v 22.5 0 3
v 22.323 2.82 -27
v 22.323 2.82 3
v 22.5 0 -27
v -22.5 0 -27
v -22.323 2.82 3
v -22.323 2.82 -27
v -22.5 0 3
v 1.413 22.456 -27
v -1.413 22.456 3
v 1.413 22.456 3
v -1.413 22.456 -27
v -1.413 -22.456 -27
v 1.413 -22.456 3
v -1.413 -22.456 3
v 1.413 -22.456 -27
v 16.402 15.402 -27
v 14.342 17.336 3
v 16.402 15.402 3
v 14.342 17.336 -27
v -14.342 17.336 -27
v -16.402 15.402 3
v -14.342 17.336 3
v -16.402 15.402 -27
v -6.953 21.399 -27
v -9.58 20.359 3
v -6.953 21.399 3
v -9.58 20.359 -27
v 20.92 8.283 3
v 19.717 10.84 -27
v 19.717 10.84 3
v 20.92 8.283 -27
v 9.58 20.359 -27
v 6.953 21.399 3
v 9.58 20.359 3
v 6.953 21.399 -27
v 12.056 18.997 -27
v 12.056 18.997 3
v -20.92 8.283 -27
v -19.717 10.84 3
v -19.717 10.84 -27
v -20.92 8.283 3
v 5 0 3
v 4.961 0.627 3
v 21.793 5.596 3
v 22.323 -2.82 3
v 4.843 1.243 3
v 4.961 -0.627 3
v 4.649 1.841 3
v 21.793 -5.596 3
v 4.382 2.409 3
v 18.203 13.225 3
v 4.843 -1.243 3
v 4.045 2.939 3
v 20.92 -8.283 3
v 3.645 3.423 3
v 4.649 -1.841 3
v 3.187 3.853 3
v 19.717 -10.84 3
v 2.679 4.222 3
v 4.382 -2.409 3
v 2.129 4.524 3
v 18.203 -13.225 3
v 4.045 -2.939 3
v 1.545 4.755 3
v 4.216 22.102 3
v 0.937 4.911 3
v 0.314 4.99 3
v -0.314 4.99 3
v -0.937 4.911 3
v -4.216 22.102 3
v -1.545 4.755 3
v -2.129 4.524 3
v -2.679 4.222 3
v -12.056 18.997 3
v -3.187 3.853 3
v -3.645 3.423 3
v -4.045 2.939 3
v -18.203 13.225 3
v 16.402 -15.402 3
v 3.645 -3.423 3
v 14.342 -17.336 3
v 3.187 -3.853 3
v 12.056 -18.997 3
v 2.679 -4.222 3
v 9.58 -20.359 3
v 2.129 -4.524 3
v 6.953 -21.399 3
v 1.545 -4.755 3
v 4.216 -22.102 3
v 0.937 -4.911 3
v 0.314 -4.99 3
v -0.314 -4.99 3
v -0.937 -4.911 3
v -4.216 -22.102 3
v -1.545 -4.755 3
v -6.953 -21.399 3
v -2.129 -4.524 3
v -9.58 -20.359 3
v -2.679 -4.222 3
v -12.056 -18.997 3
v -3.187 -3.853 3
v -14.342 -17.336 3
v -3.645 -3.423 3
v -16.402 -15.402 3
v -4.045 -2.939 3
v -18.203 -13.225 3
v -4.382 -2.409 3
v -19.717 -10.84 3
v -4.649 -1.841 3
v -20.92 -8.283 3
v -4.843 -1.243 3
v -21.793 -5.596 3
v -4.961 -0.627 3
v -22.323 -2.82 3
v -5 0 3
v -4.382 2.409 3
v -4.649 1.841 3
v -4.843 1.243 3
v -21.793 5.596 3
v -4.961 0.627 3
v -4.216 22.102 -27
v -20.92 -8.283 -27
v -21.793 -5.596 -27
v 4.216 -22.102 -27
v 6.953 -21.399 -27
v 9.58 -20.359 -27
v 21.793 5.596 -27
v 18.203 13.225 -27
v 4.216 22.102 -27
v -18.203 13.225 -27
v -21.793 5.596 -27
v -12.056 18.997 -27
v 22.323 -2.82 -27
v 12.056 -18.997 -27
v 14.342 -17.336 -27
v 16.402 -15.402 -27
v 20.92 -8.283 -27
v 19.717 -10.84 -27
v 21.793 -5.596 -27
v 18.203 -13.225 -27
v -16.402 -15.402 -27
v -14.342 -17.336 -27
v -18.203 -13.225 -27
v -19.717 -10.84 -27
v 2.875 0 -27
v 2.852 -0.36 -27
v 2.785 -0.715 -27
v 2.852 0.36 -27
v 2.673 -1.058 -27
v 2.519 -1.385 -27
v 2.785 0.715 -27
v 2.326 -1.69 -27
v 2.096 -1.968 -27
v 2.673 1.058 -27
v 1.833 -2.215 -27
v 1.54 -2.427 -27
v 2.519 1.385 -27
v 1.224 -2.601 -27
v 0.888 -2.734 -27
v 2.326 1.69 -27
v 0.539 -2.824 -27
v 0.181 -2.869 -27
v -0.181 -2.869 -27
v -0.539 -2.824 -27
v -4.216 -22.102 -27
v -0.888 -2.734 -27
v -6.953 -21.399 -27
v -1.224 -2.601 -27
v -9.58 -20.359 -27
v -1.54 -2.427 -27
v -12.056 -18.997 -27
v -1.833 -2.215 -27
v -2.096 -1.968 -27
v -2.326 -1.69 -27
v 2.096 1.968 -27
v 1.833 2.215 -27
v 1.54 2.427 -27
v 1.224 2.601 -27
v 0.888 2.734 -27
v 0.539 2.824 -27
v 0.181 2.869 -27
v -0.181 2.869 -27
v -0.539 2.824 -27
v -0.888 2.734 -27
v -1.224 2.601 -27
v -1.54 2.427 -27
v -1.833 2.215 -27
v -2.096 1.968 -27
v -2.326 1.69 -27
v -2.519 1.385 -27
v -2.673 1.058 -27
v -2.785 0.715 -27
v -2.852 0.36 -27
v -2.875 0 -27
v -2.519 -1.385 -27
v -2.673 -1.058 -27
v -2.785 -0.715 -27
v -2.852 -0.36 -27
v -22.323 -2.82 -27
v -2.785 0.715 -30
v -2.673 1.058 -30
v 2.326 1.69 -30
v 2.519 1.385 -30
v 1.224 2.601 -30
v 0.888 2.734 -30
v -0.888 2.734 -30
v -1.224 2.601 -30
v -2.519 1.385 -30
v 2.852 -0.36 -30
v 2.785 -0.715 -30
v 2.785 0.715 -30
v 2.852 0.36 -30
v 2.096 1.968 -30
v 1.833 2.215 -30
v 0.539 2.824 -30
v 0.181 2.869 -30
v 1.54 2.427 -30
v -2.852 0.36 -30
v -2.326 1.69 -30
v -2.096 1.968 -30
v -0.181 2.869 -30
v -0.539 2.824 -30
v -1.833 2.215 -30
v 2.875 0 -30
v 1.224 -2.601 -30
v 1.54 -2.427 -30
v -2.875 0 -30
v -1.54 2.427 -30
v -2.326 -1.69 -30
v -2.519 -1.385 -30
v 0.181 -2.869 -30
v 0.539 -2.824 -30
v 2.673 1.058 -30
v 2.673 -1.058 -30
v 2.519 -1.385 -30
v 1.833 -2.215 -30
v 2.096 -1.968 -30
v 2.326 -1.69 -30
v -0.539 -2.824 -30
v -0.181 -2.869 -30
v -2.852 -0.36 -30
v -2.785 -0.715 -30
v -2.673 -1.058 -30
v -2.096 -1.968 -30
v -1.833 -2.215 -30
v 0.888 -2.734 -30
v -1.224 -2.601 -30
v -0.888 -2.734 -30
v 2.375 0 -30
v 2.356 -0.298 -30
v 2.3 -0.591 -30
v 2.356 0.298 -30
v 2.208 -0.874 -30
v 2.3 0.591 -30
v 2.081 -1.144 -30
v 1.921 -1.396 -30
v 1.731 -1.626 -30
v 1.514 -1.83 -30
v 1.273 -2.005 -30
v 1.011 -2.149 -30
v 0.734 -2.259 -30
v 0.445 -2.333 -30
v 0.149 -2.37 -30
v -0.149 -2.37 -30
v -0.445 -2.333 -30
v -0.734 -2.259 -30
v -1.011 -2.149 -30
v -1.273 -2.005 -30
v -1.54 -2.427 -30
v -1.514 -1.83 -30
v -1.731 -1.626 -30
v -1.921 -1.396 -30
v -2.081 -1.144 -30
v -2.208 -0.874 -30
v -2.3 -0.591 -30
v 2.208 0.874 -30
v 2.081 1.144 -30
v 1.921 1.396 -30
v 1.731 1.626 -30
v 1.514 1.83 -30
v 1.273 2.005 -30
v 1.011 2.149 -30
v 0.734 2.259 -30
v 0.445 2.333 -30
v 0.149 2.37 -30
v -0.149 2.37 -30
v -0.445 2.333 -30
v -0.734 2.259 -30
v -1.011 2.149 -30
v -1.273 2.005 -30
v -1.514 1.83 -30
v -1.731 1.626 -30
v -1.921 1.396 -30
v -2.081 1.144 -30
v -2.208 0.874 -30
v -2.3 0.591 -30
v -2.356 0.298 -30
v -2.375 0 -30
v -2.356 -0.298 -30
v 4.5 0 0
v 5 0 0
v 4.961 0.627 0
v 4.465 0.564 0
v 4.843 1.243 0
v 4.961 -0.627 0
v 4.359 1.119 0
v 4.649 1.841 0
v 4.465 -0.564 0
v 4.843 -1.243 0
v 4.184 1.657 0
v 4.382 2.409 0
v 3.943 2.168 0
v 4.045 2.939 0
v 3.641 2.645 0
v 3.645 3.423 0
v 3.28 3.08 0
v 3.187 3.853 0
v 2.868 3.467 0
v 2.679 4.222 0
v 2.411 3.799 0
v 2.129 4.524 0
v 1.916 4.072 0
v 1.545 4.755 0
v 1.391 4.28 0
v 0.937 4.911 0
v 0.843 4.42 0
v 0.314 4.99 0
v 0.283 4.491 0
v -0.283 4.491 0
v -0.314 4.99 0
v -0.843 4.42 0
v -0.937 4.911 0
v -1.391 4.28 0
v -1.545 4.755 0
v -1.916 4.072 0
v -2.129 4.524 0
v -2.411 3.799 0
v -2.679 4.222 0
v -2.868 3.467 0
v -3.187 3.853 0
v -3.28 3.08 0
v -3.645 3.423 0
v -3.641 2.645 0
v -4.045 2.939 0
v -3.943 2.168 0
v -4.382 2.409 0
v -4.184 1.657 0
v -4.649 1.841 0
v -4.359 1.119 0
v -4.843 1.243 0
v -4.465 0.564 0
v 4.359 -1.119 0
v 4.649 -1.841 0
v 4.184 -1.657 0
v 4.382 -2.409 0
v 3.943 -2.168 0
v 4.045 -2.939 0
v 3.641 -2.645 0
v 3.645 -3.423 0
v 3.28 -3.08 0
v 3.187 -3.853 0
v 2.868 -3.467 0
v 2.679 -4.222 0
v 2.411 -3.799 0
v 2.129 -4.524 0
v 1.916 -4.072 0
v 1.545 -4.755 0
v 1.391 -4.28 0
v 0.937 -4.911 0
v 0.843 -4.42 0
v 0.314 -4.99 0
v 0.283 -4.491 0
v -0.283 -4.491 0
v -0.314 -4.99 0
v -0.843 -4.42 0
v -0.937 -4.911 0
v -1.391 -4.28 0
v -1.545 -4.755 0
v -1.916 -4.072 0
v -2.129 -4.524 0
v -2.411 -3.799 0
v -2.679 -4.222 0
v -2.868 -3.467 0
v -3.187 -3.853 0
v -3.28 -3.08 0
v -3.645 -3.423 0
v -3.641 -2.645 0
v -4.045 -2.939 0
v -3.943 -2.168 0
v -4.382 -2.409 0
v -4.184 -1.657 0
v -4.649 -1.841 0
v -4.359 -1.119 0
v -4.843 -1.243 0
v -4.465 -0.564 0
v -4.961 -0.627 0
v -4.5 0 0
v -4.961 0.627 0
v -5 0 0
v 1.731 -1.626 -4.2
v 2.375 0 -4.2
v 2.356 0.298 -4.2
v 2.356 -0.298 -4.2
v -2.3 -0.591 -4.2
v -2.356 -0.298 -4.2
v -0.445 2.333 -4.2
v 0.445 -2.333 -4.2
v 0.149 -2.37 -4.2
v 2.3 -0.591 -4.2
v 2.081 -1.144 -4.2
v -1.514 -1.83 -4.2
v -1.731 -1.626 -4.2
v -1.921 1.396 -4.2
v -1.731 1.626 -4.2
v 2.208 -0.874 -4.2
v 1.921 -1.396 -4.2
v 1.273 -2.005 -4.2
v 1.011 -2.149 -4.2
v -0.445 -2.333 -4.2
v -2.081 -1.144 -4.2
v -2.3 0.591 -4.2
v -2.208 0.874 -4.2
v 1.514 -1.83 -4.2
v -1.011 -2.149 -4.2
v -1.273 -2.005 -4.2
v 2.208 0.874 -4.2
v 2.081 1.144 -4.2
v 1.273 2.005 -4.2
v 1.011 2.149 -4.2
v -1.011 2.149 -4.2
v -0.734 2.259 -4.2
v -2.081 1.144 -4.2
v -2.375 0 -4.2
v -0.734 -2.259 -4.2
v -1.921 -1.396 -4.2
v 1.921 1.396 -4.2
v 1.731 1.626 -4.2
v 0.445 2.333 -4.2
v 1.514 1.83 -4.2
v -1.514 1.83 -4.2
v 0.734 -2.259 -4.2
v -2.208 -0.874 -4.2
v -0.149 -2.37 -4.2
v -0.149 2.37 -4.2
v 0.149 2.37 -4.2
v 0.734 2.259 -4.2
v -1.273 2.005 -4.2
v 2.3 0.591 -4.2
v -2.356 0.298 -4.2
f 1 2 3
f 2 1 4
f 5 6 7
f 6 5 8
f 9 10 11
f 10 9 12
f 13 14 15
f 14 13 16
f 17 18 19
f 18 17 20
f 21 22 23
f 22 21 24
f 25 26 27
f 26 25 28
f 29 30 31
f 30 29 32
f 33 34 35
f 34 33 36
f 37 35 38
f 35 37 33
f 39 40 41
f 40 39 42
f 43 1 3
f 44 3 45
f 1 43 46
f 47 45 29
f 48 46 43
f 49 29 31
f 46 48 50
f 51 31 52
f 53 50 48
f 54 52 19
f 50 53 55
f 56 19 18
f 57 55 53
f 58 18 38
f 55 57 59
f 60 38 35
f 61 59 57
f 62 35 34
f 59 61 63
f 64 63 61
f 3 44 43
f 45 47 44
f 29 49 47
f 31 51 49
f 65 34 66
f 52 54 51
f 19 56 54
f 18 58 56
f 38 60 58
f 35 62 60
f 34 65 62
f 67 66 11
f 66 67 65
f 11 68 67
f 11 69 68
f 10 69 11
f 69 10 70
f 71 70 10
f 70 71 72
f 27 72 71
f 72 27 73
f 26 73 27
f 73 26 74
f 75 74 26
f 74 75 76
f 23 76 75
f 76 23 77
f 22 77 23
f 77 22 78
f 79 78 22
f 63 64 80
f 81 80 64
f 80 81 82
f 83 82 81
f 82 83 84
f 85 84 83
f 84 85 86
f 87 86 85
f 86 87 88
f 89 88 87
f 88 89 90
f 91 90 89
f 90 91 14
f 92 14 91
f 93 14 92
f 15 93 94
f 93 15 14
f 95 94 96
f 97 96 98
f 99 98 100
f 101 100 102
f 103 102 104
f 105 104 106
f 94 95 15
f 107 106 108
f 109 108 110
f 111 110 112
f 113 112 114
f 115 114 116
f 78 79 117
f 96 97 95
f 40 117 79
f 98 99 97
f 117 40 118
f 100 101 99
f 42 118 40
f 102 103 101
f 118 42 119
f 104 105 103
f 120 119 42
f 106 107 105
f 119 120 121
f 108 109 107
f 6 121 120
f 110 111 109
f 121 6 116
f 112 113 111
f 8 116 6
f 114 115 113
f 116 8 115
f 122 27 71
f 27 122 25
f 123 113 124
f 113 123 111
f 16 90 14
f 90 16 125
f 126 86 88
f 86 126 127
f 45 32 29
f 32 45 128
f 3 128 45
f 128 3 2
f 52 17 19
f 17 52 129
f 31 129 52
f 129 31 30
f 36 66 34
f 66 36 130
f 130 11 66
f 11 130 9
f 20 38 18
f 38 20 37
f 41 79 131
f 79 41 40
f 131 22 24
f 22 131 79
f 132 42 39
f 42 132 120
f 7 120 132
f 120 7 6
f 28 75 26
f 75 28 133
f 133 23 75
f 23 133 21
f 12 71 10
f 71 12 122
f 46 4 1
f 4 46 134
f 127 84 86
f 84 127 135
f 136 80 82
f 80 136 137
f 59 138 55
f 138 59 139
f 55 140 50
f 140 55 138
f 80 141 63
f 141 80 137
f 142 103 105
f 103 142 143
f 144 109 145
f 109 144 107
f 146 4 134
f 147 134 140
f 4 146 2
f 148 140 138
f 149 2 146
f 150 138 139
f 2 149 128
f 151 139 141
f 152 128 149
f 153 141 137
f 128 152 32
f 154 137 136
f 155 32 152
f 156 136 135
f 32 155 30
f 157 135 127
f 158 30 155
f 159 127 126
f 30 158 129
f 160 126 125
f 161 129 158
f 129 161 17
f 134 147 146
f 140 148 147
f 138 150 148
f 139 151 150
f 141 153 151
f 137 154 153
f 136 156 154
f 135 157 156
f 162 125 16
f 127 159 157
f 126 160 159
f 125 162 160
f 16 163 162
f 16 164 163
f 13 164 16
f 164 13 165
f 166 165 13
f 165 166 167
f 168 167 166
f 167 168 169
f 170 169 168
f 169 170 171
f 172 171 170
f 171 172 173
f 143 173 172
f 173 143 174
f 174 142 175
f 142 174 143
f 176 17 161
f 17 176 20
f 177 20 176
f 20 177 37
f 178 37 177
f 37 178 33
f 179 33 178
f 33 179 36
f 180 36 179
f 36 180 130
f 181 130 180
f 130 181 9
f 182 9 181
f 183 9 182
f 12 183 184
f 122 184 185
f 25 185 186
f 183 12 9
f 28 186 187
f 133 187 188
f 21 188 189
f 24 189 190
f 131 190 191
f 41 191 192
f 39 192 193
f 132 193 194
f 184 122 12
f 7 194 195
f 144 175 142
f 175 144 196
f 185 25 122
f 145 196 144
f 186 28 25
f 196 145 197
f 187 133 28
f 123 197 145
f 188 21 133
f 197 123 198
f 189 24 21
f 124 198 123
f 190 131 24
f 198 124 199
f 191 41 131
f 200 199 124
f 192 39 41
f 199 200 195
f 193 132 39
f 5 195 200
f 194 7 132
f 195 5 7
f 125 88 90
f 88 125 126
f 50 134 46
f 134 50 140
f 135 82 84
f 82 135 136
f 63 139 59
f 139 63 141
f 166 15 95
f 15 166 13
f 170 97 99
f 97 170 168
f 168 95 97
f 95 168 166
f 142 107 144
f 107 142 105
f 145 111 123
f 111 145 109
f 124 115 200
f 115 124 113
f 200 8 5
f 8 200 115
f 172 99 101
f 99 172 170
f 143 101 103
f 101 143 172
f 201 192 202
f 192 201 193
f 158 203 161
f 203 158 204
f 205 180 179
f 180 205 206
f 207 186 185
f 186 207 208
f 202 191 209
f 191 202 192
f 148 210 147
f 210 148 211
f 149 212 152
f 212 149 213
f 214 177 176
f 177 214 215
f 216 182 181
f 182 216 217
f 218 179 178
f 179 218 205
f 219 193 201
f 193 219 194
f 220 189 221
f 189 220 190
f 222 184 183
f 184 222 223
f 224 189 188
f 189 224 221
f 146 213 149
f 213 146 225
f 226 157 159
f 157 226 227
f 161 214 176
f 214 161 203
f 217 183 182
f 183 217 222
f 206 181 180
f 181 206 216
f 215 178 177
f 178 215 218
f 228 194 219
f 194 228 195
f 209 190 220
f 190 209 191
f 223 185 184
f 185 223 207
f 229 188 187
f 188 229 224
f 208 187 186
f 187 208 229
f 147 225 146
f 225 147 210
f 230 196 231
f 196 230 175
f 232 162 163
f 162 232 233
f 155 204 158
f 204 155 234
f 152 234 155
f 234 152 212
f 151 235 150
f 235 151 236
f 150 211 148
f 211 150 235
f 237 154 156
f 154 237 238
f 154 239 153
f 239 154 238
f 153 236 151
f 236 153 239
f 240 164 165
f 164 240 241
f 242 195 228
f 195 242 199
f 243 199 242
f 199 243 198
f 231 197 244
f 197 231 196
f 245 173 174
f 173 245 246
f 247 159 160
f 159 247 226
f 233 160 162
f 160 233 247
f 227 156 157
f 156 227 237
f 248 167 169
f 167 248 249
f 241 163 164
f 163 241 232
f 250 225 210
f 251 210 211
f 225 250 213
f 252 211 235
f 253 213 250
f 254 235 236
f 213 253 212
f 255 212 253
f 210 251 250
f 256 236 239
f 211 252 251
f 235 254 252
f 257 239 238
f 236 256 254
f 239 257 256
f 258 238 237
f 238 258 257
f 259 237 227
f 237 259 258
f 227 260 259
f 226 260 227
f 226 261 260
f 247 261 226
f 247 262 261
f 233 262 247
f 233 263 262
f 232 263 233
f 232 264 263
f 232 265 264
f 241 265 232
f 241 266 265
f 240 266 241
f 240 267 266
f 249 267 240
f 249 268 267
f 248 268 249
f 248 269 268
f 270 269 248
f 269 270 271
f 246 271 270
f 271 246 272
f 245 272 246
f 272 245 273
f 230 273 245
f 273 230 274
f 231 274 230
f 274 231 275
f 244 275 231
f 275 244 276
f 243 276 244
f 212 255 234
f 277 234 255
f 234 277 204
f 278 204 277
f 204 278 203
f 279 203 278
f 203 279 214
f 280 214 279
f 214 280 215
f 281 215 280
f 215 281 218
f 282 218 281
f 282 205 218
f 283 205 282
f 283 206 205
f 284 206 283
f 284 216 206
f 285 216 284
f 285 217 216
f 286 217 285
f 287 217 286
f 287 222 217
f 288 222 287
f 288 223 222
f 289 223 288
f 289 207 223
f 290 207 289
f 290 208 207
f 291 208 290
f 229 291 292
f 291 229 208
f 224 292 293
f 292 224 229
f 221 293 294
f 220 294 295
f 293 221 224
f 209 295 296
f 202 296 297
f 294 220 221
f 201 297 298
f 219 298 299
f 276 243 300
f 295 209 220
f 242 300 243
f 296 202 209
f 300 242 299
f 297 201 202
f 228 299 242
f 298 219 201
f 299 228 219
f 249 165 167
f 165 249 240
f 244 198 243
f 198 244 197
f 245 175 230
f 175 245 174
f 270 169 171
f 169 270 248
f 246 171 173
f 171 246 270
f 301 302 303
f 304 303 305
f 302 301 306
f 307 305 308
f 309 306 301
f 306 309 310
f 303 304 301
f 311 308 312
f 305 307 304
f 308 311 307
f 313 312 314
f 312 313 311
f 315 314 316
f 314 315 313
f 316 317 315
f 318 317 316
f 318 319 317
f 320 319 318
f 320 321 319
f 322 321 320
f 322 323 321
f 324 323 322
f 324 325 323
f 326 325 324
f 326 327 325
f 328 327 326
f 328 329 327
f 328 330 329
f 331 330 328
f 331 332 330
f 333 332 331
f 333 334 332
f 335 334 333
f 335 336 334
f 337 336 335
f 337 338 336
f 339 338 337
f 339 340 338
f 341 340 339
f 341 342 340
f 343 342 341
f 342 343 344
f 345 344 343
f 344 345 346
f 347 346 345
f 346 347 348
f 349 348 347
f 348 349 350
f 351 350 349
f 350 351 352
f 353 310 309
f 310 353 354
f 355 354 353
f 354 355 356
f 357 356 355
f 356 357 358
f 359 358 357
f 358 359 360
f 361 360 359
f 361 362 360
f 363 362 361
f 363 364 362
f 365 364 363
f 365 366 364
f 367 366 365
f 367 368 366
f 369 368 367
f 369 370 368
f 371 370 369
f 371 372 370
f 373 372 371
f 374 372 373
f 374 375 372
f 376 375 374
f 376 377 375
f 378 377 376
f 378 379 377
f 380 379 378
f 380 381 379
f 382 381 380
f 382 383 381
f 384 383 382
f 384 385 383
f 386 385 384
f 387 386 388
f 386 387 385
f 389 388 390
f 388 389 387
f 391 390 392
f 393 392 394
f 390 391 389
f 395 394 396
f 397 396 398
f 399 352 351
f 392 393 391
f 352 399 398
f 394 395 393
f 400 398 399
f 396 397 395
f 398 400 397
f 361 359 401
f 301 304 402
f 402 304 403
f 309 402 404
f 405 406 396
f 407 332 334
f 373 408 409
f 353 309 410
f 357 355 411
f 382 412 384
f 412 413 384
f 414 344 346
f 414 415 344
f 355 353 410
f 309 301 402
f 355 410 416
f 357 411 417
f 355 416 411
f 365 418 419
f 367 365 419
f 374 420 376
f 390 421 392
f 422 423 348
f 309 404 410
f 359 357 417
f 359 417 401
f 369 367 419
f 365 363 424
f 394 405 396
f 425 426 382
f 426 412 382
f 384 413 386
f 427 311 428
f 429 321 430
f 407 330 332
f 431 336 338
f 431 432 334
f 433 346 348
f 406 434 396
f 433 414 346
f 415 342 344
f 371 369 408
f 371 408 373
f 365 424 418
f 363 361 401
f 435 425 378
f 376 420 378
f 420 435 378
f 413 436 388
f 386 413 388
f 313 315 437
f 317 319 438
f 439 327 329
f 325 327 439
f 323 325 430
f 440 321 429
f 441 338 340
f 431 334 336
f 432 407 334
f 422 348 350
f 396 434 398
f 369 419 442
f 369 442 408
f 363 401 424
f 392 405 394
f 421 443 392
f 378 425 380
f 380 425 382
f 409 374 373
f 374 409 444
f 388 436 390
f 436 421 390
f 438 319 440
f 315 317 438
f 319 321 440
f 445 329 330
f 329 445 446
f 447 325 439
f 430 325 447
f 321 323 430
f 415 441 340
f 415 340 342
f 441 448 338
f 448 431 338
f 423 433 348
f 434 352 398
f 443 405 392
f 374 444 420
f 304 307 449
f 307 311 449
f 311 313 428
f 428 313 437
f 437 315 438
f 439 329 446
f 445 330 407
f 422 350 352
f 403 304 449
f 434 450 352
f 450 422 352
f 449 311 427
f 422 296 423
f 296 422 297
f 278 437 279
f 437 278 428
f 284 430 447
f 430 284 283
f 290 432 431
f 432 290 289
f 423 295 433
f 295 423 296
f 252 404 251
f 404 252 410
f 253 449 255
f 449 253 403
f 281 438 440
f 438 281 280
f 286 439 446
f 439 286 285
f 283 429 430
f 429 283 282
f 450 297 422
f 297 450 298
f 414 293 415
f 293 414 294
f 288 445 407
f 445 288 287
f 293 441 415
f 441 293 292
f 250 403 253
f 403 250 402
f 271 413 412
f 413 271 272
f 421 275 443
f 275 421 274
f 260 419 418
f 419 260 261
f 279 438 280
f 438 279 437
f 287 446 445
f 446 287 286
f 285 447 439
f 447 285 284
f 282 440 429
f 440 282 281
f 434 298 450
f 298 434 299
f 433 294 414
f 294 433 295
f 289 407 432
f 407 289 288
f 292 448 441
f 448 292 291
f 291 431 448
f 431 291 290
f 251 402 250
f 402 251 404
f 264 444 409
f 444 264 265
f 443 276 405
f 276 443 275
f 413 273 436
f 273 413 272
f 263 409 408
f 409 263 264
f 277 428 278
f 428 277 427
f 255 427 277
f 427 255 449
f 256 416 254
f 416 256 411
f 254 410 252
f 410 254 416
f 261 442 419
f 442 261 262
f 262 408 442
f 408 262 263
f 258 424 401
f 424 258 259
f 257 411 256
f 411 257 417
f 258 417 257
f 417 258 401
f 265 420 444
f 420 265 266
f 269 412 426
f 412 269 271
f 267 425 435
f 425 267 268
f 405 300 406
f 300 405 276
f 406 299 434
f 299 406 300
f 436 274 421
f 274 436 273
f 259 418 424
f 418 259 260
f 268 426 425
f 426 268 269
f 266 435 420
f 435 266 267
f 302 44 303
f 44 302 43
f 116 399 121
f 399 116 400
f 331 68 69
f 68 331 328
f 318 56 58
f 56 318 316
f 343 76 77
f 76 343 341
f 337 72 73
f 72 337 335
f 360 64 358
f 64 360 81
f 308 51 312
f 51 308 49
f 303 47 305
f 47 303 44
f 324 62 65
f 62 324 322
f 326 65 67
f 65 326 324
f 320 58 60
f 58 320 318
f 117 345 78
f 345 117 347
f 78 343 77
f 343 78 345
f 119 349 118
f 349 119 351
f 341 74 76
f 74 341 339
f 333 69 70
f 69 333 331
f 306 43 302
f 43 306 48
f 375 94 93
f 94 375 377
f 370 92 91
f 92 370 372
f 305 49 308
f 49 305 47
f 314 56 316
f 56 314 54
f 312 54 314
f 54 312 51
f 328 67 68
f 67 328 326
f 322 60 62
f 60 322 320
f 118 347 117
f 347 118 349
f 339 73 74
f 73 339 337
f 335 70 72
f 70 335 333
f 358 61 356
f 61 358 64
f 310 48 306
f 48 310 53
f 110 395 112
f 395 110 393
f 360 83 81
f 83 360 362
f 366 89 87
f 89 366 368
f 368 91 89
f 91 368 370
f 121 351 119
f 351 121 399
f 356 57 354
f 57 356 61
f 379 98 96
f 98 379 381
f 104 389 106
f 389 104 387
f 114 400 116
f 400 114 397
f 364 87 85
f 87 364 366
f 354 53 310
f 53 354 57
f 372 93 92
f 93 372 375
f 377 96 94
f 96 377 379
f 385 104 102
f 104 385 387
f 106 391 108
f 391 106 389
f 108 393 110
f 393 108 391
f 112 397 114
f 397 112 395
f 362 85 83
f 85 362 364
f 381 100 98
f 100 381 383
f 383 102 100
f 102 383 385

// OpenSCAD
$fn = 50;

difference() {
	union() {
		translate(v = [0, 0, -27.0]) {
			cylinder(h = 30, r = 22.5);
		}
		#translate(v = [0, 0, -30.0]) {
			cylinder(h = 30, r = 2.875);
		}
	}
	union() {
		translate(v = [0, 0, 0]) {
			rotate(a = [0, 0, 0]) {
				difference() {
					union() {
						translate(v = [0, 0, -30.0]) {
							cylinder(h = 30, r = 2.25);
						}
						translate(v = [0, 0, -4.2]) {
							cylinder(h = 4.2, r1 = 2.375, r2 = 4.5);
						}
						translate(v = [0, 0, -30.0]) {
							cylinder(h = 30, r = 2.375);
						}
						translate(v = [0, 0, -30.0]) {
							cylinder(h = 30, r = 2.25);
						}
					}
					union();
				}
			}
		}
		#cylinder(h = 3, r = 5.0);
	}
}
